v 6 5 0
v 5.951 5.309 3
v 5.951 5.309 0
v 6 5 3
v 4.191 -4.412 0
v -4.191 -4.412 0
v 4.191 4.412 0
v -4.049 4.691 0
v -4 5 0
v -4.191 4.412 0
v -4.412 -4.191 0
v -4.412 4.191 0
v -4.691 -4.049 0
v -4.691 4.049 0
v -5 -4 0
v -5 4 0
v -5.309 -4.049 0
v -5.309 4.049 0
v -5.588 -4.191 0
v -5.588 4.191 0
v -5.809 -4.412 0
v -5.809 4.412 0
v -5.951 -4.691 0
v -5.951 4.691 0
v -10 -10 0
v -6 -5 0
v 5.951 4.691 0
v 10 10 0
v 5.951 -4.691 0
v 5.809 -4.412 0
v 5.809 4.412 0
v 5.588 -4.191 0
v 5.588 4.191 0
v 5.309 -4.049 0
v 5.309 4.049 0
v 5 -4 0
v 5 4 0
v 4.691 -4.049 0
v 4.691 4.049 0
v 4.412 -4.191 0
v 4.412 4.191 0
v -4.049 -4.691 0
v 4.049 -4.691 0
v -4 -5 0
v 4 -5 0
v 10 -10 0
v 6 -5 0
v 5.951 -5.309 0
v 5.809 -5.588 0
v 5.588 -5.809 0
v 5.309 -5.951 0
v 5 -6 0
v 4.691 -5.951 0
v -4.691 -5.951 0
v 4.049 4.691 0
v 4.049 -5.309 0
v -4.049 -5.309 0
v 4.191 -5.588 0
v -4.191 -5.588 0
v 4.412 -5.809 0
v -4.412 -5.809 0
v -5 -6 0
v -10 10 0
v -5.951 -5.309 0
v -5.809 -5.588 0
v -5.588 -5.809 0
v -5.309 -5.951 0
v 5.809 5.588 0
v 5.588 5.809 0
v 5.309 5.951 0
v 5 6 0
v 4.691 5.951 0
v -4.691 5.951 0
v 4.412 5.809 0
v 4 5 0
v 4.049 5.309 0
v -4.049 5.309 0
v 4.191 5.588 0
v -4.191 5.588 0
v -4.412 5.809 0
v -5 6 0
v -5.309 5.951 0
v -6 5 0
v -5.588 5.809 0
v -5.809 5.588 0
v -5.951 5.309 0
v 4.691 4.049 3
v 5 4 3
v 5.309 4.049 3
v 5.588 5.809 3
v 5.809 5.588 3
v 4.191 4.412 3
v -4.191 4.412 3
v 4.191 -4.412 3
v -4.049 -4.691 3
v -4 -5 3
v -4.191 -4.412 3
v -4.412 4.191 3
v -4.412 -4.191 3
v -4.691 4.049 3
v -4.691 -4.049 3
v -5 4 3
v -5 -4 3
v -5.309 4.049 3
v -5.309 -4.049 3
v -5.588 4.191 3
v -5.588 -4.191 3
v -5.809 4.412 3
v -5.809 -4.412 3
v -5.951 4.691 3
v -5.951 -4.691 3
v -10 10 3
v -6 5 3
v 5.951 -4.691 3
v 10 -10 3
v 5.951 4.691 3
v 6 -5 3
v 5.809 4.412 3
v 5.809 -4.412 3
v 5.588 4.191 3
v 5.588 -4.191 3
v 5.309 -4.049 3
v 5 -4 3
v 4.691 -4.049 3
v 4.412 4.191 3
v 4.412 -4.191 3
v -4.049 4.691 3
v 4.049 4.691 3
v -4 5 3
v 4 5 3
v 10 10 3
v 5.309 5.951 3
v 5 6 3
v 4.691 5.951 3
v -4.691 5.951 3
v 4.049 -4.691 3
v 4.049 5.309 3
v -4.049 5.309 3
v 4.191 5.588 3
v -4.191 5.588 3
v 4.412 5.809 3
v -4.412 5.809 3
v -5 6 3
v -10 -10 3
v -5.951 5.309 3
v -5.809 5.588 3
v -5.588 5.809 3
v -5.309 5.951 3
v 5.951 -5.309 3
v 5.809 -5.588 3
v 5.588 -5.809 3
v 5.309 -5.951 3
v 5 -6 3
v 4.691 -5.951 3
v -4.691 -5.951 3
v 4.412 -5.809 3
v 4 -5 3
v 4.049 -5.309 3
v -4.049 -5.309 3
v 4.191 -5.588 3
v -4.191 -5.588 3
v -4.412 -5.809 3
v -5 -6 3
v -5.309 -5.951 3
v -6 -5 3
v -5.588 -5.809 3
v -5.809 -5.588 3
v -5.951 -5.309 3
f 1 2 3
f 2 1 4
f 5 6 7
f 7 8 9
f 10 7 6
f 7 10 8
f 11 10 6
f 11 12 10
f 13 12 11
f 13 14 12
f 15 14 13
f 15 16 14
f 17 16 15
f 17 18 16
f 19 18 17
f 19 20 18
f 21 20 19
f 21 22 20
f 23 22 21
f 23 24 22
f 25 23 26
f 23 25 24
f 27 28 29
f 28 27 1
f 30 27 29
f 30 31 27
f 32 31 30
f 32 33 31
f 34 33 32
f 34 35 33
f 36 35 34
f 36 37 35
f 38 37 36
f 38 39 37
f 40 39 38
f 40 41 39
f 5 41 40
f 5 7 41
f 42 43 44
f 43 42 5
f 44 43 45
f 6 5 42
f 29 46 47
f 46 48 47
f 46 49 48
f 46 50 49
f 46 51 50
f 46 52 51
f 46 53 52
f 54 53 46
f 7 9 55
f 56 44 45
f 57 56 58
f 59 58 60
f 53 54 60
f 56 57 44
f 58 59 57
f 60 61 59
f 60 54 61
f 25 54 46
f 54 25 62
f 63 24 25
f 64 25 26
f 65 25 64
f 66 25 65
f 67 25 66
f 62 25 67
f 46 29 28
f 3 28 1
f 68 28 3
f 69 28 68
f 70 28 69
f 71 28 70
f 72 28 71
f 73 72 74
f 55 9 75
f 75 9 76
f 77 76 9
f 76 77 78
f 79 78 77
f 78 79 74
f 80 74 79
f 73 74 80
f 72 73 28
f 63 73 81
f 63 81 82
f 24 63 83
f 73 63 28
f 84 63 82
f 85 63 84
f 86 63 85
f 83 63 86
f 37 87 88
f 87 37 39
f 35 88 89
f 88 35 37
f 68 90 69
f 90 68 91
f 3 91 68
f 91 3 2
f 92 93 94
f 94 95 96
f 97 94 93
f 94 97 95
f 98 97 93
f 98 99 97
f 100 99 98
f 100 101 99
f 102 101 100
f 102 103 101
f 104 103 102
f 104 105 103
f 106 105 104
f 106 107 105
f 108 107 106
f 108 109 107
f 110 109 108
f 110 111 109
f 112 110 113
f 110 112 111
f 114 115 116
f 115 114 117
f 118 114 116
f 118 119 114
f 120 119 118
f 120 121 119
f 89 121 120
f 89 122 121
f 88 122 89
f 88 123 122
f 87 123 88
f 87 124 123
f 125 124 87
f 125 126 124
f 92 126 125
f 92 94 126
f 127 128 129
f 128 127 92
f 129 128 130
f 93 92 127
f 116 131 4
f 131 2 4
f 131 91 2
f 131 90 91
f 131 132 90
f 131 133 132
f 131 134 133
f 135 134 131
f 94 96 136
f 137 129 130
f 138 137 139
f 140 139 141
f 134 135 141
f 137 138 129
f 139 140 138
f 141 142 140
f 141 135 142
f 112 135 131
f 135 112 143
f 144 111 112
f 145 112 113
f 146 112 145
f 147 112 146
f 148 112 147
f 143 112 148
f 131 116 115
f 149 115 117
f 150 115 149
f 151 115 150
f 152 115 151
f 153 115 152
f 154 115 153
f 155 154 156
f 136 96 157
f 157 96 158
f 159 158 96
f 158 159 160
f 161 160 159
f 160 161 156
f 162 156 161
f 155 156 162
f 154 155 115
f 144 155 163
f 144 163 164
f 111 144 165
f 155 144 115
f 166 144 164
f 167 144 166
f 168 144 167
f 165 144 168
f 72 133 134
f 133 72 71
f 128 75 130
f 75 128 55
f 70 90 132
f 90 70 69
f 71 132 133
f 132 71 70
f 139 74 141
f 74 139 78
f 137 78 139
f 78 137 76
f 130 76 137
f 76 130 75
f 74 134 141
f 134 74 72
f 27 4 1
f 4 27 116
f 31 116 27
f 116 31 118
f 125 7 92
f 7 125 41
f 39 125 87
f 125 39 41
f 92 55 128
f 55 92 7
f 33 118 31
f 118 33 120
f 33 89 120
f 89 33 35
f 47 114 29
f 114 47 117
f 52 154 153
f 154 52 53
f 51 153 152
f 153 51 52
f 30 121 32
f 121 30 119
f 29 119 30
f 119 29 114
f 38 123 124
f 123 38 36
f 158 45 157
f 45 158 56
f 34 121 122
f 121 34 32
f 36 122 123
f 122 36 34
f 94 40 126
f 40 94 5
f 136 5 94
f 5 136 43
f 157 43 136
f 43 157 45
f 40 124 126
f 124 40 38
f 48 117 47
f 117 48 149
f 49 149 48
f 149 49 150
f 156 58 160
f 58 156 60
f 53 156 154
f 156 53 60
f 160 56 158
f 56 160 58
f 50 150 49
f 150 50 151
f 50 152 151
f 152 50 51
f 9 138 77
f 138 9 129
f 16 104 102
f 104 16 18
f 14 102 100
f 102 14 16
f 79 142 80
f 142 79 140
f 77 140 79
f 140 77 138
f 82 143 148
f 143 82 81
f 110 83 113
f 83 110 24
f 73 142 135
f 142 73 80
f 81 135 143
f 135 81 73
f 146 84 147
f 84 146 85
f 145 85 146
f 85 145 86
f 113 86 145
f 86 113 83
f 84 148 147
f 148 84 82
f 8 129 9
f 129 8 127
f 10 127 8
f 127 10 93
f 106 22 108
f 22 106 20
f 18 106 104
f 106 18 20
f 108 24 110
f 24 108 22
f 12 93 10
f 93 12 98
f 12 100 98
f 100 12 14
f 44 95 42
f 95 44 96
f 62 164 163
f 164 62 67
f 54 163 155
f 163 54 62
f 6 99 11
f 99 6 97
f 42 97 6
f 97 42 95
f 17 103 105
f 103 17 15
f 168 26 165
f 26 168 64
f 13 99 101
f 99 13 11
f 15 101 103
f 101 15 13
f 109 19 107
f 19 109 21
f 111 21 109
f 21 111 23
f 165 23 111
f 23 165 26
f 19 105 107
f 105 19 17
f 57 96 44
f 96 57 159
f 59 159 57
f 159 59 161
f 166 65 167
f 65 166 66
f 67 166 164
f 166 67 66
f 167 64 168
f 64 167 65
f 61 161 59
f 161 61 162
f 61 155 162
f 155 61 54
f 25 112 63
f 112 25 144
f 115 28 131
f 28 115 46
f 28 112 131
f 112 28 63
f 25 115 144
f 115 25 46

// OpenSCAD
// file: hex_trap.scad
function make_r_for_screw_standard(r_trap) =
((r_trap==2) ? 2.2 : (r_trap==2.5) ? 2.5 : (r_trap==3) ? 3.2 : (r_trap==4) ? 4.2 : r_trap);
//Utimaker 2 @ ESOC
//((r_trap==2) ? 2.2 : (r_trap==2.5) ? 2.5 : (r_trap==3) ? 3.2 : (r_trap==4) ? 4.2 : r_trap);

function make_r_hole_for_screw_standard(r_trap) =
((r_trap==2) ? 1 : (r_trap==2.5) ? 1.5 : (r_trap==3) ? 1.5 : (r_trap==4) ? 2.5 : r_trap);
//Ultimaker2 @ ESOC
//((r_trap==2) ? 1.5 : (r_trap==2.5) ? 2 : (r_trap==3) ? 2 : (r_trap==4) ? 2.5 : r_trap);

module hex_hole(h_trap,h_hole,r_trap,rot)
{
    
    echo("hex_hole h_trap[",h_trap,"]");
    echo("hex_hole h_hole[",h_hole,"]");
    local_r_trap=make_r_for_screw_standard(r_trap);
    echo("hex_hole r_trap[",r_trap,"]");
    local_r_hole=make_r_hole_for_screw_standard(r_trap);
    echo("hex_hole local_r_hole[",local_r_hole,"]");
    
    rotate([rot,0,0]) {
translate([0,0,h_hole])
{
	cylinder(h = h_trap, r = local_r_trap, $fn = 6);
}

	cylinder(h = h_hole, r = local_r_hole, $fn = 20);

}
}
module hex_hole_fill_bottom(h_trap,h_hole,r_trap,r_hole,rot)
{
    
    
    local_r_trap=make_r_for_screw_standard(r_trap);
    
    
    
    rotate([rot,0,0]) {
translate([0,0,h_hole-0.3])
{
	cylinder(h = 0.3, r = local_r_trap, $fn = 6);
}

	

}
}
module hex_hole_fill_top(h_trap,h_hole,r_trap,r_hole,rot)
{
    
    
    local_r_trap=make_r_for_screw_standard(r_trap);
    rotate([rot,0,0]) {


	cylinder(h = 0.3, r = r_hole, $fn = 20);

}
}
// file: ../configuration/general.scad
//Screw standards
SCREW_STANDARD_M3=3;

//HDMI screen cover
HDMI_HOLES_LENGTH=157;
HDMI_HOLES_WIDTH=108;
GAP_MAINSCREWS_HDMI=3;
BASE_OUTERPAD_HDMI=2;
FRONT_COVER_TRAPS_TOLERANCE=0.1;


//Back plate
BACK_PLATE_CENTER_BLOB=6;
BACK_PLATE_WALL=3;
BACK_PLATE_THICKNESS=1;
SCREW_BLOCK_SIZE=12;

BACK_PLATE_ADAPTER0_THICKNESS=1;
BACK_PLATE_ADAPTER0_SPACING=100;

//Adapter0
CIRCUIT_BOARD_SCREWSTANDARD0=2;
CIRCUIT_BOARD_ADAPTER0_SPACING=10;
CIRCUIT_BOARD_ADAPTER0_SCREW_HEIGHT=6-BACK_PLATE_THICKNESS;
CIRCUIT_BOARD_ADAPTER0_SCREW_TRAP_HEIGHT=1.6;
CIRCUIT_BOARD_ADAPTER0_PLUS_WIDTH=5;
CIRCUIT_BOARD_ADAPTER0_BASE_WIDTH=CIRCUIT_BOARD_ADAPTER0_SPACING+10;
// main file
include <../configuration/general.scad>;
include <hex_trap.scad>;

module adapter0(height)
{
    local_length=CIRCUIT_BOARD_ADAPTER0_BASE_WIDTH;
    difference()
    {
        union()
        {
        translate([-local_length/2,-local_length/2,0])
        cube([local_length,local_length,height]);
        }
        union()
        {
            
    translate([CIRCUIT_BOARD_ADAPTER0_SPACING/2,CIRCUIT_BOARD_ADAPTER0_SPACING/2,0])
hex_hole(0,height,CIRCUIT_BOARD_SCREWSTANDARD0,0);
translate([CIRCUIT_BOARD_ADAPTER0_SPACING/2,-CIRCUIT_BOARD_ADAPTER0_SPACING/2,0])
hex_hole(0,height,CIRCUIT_BOARD_SCREWSTANDARD0,0);
translate([-CIRCUIT_BOARD_ADAPTER0_SPACING/2,CIRCUIT_BOARD_ADAPTER0_SPACING/2,0])
hex_hole(0,height,CIRCUIT_BOARD_SCREWSTANDARD0,0);
translate([-CIRCUIT_BOARD_ADAPTER0_SPACING/2,-CIRCUIT_BOARD_ADAPTER0_SPACING/2,0])
hex_hole(0,height,CIRCUIT_BOARD_SCREWSTANDARD0,0);
        }
    }
    
        
        
    
}
adapter0(3);
